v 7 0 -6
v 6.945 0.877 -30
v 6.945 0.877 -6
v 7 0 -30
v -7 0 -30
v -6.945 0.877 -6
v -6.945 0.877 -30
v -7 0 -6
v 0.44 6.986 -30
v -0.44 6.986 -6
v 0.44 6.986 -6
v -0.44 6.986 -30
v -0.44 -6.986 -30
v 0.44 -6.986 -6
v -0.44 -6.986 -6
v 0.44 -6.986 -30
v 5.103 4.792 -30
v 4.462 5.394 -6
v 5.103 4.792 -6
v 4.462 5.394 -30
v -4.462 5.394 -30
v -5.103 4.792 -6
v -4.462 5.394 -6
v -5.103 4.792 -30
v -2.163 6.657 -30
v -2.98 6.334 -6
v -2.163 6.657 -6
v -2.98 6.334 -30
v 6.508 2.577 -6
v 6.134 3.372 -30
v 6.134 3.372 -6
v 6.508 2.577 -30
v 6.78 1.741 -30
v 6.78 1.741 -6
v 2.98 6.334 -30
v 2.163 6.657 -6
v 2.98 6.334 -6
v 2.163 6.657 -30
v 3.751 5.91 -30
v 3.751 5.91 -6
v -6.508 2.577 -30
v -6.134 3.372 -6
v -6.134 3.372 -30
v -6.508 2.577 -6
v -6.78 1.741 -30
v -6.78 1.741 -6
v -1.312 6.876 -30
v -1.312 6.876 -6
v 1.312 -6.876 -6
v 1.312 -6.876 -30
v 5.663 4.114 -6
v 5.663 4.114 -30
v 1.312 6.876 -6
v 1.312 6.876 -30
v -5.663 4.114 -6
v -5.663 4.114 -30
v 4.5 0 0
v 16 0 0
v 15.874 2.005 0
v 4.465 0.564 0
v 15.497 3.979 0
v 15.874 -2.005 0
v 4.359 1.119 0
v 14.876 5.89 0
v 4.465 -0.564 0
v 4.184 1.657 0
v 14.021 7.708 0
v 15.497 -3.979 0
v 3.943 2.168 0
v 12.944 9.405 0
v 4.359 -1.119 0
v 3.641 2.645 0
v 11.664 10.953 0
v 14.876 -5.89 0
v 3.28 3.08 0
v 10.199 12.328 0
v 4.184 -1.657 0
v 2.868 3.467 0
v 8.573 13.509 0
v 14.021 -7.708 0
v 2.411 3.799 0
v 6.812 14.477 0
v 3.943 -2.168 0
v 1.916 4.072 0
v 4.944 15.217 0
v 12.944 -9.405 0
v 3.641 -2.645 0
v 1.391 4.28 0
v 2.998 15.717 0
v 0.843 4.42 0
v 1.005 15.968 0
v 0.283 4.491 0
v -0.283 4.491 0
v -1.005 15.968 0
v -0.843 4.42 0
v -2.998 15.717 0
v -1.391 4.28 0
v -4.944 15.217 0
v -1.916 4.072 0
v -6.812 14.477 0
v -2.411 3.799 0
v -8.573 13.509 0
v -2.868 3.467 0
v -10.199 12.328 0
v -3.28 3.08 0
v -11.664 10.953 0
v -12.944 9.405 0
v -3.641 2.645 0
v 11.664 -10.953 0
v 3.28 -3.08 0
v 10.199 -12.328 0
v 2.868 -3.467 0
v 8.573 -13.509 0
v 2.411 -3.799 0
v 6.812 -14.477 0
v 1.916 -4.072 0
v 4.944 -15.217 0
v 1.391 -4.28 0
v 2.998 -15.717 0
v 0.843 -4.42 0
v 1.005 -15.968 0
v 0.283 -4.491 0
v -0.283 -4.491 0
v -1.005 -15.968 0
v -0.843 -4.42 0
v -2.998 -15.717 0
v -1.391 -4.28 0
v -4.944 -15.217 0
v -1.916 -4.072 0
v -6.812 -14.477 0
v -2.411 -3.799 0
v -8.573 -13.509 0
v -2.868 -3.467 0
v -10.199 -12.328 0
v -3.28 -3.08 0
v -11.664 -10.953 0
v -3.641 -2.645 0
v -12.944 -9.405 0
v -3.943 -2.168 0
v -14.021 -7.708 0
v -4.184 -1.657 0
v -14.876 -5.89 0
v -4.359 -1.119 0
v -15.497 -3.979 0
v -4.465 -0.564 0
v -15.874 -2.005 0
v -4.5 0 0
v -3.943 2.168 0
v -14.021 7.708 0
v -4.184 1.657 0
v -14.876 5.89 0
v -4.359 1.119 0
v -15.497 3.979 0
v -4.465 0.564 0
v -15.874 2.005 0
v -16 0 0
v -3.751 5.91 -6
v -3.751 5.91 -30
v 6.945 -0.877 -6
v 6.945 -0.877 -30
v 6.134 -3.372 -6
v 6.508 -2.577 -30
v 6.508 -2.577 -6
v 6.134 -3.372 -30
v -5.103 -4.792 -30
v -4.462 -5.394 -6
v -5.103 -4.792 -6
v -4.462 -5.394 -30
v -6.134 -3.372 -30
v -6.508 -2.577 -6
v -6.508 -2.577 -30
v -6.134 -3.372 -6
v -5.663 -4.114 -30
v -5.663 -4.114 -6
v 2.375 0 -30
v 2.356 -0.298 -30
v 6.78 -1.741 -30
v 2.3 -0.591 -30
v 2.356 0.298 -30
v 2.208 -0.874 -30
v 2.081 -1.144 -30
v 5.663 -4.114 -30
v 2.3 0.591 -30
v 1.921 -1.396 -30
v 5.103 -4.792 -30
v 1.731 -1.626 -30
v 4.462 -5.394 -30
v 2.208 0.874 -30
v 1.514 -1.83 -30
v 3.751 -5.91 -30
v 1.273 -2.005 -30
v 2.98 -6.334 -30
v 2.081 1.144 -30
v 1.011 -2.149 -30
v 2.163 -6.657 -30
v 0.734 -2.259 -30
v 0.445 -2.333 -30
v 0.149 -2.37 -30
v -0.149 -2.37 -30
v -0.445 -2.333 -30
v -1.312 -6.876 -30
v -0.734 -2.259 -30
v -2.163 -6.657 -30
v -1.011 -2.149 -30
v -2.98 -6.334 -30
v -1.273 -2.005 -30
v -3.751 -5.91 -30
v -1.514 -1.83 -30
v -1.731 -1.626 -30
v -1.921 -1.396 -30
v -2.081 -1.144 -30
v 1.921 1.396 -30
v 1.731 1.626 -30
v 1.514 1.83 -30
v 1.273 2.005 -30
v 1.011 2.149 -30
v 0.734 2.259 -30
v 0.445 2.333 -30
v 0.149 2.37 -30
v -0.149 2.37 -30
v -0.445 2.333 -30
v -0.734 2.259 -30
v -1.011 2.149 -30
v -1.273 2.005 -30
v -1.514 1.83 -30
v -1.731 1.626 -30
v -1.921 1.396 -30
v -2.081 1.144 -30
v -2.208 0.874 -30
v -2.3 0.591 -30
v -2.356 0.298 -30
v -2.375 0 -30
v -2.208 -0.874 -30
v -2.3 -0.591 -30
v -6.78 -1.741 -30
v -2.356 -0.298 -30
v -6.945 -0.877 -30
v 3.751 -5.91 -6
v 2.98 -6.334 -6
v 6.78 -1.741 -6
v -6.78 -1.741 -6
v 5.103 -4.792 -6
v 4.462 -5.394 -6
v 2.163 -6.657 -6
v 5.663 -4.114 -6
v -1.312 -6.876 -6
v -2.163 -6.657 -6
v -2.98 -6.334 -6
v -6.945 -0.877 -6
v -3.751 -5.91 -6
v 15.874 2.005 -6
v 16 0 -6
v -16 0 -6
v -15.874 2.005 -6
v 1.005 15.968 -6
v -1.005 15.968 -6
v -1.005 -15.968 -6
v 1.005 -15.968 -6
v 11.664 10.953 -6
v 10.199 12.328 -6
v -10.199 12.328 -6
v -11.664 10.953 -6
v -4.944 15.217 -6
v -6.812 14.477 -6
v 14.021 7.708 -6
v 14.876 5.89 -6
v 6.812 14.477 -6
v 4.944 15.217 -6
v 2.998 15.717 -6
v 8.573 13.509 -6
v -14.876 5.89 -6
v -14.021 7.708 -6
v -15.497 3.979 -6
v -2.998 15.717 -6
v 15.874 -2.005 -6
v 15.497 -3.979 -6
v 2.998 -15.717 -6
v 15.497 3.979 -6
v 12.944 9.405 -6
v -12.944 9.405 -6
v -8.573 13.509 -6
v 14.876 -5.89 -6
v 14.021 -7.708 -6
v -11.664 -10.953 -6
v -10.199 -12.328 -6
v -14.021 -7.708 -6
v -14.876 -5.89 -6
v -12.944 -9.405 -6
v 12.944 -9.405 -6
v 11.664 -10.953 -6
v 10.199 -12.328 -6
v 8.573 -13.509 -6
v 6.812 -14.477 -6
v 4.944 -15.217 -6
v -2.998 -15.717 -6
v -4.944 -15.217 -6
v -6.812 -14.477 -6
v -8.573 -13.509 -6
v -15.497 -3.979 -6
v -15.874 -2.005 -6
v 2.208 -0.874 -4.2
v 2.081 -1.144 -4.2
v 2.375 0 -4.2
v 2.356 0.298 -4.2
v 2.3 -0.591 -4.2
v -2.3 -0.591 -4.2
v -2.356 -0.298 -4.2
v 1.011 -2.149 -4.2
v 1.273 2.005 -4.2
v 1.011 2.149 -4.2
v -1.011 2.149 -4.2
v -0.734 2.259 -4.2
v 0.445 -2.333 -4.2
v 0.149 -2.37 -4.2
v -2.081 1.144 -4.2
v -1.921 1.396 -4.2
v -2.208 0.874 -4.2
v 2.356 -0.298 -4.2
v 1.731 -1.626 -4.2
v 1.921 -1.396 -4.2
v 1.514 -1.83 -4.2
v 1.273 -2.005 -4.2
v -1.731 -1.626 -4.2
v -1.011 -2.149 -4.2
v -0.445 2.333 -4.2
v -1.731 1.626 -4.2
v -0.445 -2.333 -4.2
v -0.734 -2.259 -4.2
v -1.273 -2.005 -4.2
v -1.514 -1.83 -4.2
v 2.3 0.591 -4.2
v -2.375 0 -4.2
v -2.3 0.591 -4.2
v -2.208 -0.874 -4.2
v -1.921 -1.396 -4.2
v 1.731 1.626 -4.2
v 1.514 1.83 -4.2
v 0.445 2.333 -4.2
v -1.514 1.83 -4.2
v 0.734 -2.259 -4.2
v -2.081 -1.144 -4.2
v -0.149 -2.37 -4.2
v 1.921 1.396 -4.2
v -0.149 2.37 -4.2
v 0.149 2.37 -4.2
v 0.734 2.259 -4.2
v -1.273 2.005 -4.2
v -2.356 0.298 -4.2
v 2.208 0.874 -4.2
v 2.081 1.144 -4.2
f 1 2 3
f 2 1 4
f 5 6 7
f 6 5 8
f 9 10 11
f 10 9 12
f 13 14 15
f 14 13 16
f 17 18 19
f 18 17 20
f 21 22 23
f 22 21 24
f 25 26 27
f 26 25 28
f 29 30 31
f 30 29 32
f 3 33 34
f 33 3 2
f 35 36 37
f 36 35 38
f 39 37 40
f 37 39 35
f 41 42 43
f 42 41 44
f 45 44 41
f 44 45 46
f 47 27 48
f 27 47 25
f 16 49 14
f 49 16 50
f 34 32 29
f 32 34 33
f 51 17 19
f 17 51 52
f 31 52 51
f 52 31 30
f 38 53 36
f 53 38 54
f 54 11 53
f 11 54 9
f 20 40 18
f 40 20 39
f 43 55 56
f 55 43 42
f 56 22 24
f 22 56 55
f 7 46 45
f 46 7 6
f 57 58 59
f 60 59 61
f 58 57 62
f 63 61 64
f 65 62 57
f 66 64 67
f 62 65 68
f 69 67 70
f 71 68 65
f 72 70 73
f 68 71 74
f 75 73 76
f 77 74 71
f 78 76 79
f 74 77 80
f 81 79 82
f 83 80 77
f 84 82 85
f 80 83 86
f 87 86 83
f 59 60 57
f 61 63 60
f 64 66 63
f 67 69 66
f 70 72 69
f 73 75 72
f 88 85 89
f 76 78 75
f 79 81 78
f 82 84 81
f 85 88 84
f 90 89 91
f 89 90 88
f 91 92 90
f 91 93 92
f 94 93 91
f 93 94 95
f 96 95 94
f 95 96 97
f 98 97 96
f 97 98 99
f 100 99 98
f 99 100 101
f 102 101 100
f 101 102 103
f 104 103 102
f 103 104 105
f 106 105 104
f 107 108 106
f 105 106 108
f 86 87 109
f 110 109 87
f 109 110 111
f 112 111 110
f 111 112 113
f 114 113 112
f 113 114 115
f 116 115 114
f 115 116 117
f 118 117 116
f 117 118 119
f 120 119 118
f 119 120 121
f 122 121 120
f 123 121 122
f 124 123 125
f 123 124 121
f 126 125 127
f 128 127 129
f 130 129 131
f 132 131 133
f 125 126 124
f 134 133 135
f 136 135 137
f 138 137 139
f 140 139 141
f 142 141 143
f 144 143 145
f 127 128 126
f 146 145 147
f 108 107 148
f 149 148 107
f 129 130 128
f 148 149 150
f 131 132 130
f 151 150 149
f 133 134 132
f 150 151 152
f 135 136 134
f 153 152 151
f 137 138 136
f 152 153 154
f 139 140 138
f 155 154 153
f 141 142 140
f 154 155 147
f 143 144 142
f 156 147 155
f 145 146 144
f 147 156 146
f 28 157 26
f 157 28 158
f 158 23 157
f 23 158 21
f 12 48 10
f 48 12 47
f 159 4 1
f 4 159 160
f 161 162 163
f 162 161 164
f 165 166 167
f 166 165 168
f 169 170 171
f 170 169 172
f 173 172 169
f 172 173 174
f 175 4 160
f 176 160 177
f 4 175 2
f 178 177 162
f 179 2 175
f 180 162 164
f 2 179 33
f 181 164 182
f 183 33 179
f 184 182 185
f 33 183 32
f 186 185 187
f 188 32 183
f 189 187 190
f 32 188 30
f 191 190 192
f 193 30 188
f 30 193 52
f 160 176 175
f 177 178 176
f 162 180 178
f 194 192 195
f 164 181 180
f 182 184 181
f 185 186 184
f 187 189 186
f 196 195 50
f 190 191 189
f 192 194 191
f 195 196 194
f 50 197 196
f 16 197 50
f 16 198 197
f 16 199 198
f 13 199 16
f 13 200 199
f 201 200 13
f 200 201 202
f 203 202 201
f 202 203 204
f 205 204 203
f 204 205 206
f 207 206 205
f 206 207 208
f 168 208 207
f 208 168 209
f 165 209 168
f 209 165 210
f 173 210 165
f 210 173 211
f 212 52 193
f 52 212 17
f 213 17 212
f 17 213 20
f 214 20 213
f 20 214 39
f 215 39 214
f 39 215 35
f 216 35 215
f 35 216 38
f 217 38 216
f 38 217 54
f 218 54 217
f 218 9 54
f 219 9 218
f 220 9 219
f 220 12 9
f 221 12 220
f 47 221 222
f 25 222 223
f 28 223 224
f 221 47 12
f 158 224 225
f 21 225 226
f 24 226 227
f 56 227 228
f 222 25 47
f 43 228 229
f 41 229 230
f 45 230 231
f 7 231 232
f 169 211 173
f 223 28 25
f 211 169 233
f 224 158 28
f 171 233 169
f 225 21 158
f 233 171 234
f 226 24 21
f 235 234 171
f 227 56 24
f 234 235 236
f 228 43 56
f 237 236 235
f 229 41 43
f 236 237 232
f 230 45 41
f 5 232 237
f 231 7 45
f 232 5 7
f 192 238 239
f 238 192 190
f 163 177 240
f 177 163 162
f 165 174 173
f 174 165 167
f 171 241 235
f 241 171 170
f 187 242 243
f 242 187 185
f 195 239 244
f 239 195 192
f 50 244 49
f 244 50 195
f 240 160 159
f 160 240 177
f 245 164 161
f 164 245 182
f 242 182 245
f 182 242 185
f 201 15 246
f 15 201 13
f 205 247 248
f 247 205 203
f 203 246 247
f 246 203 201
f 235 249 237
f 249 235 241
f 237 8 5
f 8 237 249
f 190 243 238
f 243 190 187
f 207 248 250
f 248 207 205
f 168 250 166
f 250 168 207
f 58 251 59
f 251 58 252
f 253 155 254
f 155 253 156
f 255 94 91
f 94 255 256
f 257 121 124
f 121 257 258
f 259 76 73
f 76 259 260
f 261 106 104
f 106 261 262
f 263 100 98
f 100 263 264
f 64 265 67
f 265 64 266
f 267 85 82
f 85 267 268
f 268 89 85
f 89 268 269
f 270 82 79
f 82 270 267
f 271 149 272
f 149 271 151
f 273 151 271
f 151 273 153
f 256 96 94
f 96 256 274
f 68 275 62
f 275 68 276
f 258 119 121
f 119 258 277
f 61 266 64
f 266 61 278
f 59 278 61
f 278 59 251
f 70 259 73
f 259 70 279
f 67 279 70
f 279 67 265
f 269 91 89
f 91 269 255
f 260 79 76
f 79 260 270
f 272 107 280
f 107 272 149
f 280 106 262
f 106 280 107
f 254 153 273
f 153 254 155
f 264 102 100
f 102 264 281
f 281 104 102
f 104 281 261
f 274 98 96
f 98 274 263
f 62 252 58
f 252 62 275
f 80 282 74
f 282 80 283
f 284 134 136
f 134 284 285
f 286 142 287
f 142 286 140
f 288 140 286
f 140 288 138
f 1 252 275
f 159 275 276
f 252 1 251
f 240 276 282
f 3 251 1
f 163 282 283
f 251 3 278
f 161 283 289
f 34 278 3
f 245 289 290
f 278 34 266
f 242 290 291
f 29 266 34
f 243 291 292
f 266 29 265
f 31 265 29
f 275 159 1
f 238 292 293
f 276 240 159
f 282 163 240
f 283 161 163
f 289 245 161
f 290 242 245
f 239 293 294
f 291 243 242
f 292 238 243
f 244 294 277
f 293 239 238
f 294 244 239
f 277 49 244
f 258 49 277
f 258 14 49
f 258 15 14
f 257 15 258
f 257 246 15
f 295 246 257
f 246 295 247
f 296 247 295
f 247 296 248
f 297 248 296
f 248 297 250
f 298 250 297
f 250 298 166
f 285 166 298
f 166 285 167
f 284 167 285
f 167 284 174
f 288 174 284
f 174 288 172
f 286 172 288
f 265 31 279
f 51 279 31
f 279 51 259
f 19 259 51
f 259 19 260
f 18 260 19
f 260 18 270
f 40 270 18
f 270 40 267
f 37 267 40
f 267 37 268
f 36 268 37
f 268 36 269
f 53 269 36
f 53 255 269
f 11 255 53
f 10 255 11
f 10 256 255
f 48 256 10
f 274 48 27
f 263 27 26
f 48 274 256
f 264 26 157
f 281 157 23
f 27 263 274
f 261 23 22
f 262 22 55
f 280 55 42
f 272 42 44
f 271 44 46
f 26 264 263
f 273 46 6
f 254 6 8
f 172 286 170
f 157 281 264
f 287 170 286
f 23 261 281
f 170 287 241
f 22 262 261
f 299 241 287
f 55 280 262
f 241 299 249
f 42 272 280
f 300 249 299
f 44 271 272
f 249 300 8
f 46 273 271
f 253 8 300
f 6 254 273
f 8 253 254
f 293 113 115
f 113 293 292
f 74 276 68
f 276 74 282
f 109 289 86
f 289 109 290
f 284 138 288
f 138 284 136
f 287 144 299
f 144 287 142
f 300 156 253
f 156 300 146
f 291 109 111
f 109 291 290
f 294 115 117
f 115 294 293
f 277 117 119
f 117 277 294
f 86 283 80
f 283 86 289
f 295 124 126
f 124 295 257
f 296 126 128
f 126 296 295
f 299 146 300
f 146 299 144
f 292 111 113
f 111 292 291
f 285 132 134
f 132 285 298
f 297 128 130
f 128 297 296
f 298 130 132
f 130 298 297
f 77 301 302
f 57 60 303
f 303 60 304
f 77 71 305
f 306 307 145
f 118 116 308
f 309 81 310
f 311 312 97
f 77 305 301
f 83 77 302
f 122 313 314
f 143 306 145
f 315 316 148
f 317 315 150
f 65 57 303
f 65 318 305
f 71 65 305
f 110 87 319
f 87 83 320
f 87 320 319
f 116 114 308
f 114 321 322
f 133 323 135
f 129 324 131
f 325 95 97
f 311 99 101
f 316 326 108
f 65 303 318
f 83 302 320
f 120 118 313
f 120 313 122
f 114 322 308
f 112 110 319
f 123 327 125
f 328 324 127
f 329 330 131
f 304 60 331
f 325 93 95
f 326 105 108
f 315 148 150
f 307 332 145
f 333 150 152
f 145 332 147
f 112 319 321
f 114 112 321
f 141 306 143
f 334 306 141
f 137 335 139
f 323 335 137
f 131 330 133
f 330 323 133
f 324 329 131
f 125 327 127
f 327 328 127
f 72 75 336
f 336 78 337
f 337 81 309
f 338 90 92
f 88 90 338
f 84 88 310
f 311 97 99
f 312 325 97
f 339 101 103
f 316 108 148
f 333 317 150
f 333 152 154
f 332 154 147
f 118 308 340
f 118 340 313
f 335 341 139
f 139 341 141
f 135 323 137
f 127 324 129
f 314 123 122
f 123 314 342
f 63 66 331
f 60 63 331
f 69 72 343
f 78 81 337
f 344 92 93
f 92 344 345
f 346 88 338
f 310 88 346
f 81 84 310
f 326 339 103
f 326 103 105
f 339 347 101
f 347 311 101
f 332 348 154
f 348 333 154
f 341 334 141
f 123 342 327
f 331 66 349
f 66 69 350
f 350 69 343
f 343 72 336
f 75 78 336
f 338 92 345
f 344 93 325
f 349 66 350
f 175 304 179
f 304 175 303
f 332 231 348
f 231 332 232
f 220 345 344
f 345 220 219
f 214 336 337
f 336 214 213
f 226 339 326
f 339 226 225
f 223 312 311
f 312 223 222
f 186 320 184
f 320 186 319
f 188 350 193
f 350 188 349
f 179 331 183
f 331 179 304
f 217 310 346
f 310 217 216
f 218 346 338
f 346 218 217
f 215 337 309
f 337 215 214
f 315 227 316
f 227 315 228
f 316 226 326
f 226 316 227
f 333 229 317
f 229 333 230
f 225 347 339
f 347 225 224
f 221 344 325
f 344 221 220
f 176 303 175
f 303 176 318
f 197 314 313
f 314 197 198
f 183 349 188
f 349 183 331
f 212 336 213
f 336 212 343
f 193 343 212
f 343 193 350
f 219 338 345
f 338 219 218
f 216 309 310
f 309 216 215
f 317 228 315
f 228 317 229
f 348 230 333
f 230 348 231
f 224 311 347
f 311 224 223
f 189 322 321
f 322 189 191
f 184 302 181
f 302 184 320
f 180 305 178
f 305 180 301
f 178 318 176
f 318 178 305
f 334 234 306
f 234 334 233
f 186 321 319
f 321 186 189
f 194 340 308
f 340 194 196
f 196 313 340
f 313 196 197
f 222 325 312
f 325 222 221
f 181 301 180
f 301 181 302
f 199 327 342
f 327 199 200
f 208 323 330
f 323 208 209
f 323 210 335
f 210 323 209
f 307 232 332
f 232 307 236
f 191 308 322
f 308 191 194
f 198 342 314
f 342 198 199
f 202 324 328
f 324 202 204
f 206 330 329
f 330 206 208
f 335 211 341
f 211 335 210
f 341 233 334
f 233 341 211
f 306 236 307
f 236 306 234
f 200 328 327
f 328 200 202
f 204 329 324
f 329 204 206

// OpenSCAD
$fn = 50;


difference() {
	union() {
		translate(v = [0, 0, -30.0000000000]) {
			cylinder(h = 30, r = 7.0000000000);
		}
		translate(v = [0, 0, -6.0000000000]) {
			cylinder(h = 6, r = 16.0000000000);
		}
	}
	union() {
		translate(v = [0, 0, 0]) {
			rotate(a = [0, 0, 0]) {
				difference() {
					union() {
						#translate(v = [0, 0, -30.0000000000]) {
							cylinder(h = 30, r = 2.2500000000);
						}
						#translate(v = [0, 0, -4.2000000000]) {
							cylinder(h = 4.2000000000, r = 7.0000000000, r1 = 2.3750000000, r2 = 4.5000000000);
						}
						#translate(v = [0, 0, -30.0000000000]) {
							cylinder(h = 30, r = 2.3750000000);
						}
						#translate(v = [0, 0, -30.0000000000]) {
							cylinder(h = 30, r = 2.2500000000);
						}
					}
					union();
				}
			}
		}
	}
}
